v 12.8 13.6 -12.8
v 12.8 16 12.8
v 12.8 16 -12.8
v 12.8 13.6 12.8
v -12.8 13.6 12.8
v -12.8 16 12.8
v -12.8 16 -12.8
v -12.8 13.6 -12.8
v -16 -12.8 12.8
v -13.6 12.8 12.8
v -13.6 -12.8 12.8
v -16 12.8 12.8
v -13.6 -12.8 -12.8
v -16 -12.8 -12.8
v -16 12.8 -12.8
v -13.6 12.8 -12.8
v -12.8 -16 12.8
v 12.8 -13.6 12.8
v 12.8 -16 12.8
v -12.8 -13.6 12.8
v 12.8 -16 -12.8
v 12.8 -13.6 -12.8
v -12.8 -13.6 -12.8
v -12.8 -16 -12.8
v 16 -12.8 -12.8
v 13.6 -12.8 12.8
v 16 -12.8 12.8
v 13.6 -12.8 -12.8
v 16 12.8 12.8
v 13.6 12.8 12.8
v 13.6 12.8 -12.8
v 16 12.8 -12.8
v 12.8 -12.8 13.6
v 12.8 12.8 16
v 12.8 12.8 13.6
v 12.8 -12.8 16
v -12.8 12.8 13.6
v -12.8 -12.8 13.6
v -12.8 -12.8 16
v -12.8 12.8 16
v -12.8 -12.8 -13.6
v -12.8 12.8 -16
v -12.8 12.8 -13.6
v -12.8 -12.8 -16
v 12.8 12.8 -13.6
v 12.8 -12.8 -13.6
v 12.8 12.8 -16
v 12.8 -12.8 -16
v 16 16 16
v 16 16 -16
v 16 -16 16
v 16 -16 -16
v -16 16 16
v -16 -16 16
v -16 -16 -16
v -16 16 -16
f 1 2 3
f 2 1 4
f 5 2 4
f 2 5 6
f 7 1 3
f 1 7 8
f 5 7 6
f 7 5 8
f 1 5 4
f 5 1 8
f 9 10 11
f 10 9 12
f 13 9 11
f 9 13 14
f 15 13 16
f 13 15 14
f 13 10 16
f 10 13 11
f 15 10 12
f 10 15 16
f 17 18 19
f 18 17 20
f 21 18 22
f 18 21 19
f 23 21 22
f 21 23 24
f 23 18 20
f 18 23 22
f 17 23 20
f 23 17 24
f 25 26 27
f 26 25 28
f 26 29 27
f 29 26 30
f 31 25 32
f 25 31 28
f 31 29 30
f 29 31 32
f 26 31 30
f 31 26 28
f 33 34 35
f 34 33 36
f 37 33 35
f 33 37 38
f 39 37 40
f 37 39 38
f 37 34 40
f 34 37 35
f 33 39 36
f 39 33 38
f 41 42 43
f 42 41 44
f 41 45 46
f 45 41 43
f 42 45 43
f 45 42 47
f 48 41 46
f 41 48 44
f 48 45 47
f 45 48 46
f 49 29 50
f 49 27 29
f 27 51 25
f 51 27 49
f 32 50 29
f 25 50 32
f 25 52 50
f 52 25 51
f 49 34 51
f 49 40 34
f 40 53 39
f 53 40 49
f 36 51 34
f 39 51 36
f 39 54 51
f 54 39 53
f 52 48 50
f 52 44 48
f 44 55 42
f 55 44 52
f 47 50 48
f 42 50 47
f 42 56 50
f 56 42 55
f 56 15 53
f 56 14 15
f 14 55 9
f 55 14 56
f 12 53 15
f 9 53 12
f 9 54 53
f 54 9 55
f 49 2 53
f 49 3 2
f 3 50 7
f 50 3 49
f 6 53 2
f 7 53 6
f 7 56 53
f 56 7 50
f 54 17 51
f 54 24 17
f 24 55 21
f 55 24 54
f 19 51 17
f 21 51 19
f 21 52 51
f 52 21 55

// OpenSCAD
size=32; //block=32 //item=8



//gearbox 4 sided
//cube([size*0.8,size*0.8,size*1],center=true);

//translate([0,0,size*0.45]){	//top
//cube([size*1,size*1,size*0.15],center=true);
//};
//translate([0,0,-size*0.45]){	//bottom
//cube([size*1,size*1,size*0.15],center=true);
//};
//gearbox 4 sided


//gearbox 6 sided
//cube([size*0.8,size*0.8,size*0.8],center=true);
difference(){
cube([size*1,size*1,size*1],center=true);

union(){
for(i=[0:1:4]){	//sides
rotate([0,0,90*i]){
translate([0,size*0.5,0]){
cube([size*0.8,size*0.15,size*0.8],center=true);
};	//translate
};	//rotate
};	//for

for(i=[0:1:2]){	//top/bottom
rotate([180*i,0,0]){
translate([0,0,size*0.5]){
cube([size*0.8,size*0.8,size*0.15],center=true);
};	//translate
};	//rotate
};	//for
};

};

//gearbox 6 sided
